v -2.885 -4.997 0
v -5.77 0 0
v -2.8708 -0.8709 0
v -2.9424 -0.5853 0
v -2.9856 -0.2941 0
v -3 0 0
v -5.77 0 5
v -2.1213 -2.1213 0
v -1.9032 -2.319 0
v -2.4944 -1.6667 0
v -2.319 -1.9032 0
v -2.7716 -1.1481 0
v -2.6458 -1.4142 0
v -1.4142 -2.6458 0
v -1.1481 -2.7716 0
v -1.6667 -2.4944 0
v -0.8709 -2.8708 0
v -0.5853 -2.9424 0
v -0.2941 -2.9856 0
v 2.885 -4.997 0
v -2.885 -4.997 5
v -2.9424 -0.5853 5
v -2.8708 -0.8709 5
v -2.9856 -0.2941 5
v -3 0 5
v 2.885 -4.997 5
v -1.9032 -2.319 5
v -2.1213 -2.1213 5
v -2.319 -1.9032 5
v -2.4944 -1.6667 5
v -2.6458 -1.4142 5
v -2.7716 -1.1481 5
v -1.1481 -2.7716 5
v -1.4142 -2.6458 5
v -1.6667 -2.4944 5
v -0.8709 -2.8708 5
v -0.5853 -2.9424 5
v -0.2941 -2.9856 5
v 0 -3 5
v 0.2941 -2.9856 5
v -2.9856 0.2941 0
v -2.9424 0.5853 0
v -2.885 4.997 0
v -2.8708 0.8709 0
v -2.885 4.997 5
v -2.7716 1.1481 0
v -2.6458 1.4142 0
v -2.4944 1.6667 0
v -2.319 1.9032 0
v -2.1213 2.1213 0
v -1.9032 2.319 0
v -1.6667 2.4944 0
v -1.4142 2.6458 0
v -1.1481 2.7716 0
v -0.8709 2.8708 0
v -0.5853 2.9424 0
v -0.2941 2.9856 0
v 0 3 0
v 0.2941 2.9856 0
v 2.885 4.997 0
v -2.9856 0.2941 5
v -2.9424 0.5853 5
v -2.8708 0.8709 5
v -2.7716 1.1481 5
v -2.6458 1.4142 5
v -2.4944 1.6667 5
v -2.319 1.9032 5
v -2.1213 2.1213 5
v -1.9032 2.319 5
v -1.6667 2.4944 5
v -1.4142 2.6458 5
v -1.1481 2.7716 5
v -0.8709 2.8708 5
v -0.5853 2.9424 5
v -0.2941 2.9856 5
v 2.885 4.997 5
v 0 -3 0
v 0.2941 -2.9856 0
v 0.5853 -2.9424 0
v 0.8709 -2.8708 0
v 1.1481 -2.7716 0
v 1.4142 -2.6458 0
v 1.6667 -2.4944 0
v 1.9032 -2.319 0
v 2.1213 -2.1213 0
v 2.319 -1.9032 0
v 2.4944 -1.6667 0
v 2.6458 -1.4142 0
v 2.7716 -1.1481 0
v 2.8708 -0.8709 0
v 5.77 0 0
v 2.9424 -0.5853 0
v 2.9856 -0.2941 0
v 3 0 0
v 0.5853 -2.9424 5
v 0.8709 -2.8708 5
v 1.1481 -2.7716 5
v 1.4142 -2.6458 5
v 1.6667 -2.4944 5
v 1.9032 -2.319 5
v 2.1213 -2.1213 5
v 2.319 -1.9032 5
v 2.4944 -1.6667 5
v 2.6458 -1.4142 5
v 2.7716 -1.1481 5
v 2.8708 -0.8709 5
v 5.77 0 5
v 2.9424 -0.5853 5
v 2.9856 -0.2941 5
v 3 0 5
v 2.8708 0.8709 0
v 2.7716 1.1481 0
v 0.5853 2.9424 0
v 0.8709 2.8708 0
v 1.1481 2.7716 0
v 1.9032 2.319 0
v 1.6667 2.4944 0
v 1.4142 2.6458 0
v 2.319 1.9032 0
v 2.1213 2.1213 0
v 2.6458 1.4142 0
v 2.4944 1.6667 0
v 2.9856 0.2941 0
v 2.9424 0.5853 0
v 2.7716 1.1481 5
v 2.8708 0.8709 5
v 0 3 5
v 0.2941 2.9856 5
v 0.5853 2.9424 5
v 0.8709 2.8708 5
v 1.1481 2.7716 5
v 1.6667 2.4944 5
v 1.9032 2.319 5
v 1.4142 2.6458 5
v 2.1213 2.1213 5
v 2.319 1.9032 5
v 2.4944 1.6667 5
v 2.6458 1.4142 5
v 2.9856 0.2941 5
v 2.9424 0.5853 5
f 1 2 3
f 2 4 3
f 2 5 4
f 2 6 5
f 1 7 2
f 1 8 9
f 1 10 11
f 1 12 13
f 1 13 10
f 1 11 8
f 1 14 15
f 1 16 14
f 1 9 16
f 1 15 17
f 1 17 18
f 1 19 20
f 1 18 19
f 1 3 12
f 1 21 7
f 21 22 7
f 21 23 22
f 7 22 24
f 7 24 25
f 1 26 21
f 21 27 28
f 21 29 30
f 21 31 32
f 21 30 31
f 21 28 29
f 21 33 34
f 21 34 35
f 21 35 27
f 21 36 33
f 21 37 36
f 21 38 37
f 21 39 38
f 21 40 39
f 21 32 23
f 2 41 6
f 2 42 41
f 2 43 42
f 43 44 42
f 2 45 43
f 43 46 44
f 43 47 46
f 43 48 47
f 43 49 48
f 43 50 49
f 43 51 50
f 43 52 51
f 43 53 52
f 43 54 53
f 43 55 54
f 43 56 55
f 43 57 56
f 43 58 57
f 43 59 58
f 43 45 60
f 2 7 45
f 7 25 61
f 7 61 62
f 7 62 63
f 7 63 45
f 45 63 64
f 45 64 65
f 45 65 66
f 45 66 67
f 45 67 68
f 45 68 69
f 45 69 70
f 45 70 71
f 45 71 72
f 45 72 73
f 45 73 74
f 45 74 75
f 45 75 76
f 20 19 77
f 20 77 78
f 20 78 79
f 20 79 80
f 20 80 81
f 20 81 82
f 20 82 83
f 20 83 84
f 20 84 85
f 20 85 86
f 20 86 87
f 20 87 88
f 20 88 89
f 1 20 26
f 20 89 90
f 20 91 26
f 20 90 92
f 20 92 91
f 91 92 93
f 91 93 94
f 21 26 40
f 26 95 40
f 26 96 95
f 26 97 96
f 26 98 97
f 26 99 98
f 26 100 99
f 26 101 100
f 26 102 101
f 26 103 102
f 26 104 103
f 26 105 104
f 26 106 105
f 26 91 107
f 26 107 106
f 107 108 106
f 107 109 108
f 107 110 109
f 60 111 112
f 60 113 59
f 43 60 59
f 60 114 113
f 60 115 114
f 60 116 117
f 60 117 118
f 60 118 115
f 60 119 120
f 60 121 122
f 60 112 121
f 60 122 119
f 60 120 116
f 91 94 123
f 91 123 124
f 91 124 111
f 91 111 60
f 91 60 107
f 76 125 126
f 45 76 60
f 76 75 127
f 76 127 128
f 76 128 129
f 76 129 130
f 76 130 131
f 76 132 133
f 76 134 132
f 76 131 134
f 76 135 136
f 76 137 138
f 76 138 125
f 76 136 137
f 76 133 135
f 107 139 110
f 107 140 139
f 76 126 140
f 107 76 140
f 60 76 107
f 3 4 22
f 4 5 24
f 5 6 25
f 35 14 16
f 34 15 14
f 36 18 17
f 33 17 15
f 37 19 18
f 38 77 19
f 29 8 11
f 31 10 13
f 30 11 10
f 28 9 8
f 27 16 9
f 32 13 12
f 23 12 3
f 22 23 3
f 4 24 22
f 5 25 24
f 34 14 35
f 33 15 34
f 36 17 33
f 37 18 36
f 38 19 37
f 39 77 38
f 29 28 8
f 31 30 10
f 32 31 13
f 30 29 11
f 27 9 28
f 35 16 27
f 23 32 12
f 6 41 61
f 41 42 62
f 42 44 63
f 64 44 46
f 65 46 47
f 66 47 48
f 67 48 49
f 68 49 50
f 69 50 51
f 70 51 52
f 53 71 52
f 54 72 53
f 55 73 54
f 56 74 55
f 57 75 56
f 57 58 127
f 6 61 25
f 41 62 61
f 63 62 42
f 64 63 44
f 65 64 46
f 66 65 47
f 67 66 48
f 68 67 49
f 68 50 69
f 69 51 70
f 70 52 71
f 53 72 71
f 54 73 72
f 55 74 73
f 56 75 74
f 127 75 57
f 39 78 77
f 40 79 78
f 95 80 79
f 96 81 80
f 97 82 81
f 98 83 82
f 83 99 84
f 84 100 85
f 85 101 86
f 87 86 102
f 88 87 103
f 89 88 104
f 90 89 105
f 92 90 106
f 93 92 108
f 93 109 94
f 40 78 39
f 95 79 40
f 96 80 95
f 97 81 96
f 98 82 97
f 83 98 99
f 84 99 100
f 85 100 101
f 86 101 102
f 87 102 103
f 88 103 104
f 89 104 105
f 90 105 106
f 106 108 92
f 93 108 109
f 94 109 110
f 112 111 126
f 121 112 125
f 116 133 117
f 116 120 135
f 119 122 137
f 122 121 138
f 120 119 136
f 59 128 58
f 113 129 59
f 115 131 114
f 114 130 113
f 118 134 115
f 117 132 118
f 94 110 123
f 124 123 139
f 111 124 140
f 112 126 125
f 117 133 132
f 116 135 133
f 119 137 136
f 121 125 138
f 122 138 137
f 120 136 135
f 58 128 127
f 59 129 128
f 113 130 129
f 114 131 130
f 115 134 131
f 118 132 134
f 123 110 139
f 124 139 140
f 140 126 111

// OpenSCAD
$fn=64; difference() { cylinder(h=5,r=5.77,$fn=6); translate([0,0,-.01]) cylinder(h=5.02,r=3); }
